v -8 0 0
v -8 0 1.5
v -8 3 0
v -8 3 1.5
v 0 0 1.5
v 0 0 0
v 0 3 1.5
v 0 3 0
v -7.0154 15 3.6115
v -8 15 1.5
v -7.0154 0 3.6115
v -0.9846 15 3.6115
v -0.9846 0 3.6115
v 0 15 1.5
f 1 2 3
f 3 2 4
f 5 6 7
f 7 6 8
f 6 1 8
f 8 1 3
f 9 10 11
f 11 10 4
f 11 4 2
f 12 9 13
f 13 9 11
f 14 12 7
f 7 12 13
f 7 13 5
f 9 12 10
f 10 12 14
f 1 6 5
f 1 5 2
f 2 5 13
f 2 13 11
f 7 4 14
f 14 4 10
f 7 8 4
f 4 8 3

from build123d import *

# Parameters (mm, degrees)
CROQUIS1_W              = 8
CROQUIS1_H              = 1.5
SALIENTE_EXTRUIR4_DEPTH = 15
CROQUIS5_W              = 8
CROQUIS5_H              = 1.5
CORTAR_EXTRUIR3_DEPTH   = 12


with BuildPart() as part:
    # Croquis1 → Saliente-Extruir4 (new body)
    with BuildSketch(Plane(origin=(0, 0, 0), x_dir=(1, 0, 0), z_dir=(0, 1, 0))):
        with Locations((-4, -0.75)):
            Rectangle(CROQUIS1_W, CROQUIS1_H)
        Polygon((-7.015405321, -3.611470103), (-0.984594679, -3.611470103), (0, -1.5), (-8, -1.5), align=None)
    extrude(amount=SALIENTE_EXTRUIR4_DEPTH)

    # Croquis5 → Cortar-Extruir3 (cut)
    with BuildSketch(Plane(origin=(0, 15, 0), x_dir=(1, 0, 0), z_dir=(0, 1, 0))):
        with Locations((-4, -0.75)):
            Rectangle(CROQUIS5_W, CROQUIS5_H)
    extrude(amount=-CORTAR_EXTRUIR3_DEPTH, mode=Mode.SUBTRACT)


solid = part.part
